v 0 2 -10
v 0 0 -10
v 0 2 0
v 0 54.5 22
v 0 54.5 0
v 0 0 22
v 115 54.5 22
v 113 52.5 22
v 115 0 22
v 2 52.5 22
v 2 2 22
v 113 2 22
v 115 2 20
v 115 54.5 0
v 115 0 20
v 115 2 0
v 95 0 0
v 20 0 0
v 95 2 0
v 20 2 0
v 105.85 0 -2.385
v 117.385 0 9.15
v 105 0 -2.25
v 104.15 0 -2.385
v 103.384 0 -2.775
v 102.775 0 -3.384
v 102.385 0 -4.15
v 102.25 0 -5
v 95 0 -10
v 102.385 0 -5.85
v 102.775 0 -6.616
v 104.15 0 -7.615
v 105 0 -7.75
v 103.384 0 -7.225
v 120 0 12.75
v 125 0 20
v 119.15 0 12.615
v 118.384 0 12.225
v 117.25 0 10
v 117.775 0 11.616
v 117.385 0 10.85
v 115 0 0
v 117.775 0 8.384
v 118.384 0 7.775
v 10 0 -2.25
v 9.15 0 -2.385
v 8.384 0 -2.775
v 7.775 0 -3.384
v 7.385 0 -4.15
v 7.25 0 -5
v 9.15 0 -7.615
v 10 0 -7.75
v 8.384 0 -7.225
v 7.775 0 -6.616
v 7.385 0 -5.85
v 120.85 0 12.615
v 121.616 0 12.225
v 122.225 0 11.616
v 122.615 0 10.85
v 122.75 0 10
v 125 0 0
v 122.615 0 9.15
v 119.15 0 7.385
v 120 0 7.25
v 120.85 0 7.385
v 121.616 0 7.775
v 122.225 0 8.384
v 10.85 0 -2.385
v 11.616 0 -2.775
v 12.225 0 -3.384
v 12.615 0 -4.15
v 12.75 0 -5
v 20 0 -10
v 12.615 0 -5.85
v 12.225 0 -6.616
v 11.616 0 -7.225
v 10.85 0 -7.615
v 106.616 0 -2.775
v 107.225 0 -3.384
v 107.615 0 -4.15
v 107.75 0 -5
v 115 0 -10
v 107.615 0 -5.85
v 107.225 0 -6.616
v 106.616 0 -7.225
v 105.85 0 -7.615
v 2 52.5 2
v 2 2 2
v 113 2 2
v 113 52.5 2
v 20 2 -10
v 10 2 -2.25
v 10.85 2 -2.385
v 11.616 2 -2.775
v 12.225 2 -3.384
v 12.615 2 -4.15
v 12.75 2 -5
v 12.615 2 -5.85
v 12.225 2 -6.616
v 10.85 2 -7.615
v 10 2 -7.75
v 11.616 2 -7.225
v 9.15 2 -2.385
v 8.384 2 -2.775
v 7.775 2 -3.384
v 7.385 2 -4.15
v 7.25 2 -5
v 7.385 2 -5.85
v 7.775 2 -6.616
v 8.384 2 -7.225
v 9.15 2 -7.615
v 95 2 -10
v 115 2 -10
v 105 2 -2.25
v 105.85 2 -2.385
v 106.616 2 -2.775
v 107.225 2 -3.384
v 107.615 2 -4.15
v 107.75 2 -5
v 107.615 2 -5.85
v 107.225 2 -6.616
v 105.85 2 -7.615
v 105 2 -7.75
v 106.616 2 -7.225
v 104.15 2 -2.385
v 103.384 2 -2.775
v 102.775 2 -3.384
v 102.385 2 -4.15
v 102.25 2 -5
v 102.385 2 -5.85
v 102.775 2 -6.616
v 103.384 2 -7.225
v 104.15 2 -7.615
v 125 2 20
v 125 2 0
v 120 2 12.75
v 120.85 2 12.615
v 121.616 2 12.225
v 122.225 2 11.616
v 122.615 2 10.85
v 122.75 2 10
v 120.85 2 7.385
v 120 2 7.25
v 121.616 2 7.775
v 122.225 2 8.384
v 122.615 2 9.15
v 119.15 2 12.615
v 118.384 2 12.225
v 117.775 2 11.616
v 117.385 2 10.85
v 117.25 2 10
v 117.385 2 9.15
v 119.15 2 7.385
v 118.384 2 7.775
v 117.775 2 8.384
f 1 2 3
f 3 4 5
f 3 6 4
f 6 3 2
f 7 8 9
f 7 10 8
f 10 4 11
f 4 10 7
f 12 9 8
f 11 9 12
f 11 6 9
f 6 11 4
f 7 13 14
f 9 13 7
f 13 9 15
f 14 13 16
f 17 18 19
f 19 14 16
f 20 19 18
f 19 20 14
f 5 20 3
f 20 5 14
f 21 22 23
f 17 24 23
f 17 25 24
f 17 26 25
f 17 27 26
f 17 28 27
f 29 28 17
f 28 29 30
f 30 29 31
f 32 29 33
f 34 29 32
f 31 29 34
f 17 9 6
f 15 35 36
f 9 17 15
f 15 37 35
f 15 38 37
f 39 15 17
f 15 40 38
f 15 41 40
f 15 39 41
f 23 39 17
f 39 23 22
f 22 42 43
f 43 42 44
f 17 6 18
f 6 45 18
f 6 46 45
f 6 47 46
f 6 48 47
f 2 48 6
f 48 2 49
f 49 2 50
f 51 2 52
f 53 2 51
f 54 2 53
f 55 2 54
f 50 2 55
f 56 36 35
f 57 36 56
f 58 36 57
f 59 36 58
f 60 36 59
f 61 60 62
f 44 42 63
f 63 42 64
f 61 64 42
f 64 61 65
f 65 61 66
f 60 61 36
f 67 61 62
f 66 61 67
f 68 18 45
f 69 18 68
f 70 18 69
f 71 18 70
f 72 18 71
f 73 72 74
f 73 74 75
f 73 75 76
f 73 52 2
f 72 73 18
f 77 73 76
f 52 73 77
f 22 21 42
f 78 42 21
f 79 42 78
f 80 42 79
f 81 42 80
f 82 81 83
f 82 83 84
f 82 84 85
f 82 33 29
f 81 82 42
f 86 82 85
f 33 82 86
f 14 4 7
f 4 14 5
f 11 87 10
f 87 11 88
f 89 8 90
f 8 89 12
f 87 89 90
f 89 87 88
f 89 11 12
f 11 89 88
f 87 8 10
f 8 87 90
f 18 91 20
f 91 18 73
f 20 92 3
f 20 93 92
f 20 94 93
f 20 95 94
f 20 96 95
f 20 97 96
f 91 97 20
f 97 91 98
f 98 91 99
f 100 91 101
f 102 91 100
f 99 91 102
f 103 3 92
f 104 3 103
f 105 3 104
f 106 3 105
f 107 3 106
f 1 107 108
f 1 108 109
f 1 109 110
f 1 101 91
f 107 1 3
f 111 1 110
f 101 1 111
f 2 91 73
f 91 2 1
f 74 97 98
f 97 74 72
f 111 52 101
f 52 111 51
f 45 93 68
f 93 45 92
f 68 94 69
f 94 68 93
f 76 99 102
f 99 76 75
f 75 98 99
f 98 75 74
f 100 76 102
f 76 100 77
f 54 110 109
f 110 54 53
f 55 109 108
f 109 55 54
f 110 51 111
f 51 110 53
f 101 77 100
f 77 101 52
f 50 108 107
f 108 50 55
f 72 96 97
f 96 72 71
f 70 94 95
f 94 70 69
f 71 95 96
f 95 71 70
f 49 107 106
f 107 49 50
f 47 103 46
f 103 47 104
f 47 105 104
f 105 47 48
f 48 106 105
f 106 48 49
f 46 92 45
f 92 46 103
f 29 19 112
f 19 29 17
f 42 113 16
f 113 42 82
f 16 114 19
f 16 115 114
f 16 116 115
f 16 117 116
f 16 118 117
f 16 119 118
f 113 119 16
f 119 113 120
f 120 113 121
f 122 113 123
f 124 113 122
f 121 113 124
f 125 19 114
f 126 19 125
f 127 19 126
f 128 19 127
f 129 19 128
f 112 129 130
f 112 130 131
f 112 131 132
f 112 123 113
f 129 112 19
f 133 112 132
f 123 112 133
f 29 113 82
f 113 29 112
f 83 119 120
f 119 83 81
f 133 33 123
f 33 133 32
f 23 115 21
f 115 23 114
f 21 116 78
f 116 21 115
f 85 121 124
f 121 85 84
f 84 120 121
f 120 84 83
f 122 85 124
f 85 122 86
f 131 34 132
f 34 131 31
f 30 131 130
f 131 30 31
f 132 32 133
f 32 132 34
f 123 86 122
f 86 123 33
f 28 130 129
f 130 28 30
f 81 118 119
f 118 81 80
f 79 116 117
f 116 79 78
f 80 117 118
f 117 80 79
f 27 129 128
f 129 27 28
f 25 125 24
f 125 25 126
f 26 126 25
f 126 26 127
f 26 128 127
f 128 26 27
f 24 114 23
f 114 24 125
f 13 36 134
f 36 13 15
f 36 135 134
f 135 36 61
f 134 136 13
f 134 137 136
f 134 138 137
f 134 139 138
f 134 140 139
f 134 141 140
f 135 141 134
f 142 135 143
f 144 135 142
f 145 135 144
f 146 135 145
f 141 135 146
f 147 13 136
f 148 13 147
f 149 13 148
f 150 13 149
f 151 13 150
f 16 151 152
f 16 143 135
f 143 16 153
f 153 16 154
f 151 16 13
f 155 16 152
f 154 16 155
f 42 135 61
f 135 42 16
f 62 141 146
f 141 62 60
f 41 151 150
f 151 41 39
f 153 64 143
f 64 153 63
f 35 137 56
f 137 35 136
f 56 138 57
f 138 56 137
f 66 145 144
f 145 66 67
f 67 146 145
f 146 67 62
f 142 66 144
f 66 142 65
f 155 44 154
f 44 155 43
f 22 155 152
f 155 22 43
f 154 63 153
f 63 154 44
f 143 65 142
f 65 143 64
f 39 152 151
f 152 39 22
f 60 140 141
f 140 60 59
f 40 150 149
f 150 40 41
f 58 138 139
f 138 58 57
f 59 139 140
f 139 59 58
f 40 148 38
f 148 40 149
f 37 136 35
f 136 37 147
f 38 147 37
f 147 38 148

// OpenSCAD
BaseWidth = 111;
BaseDepth = 50.5;
BaseHeightBottom = 20;

WallThickness = 2;

AnchorWidth = 20;
AnchorHeight = 10;
AhcnorHoleDiameter = 5.5;


// Bottom main body
difference() {
    cube(size=[BaseWidth+2*WallThickness, BaseDepth+2*WallThickness, BaseHeightBottom+WallThickness], center=false);
    translate([WallThickness, WallThickness, WallThickness])
    cube(size=[BaseWidth, BaseDepth, BaseHeightBottom], center=false);
}

// Bottom anchor 1
translate([0, 0, -AnchorHeight])
    difference() {
        cube(size=[AnchorWidth, WallThickness, AnchorHeight], center=false);
        translate([AnchorWidth/2, 0, AnchorHeight/2])
        rotate([-90, 0, 0])
        cylinder(h=WallThickness, d=AhcnorHoleDiameter, center=false, $fn=20);
    }

// Bottom anchor 2
translate([BaseWidth+2*WallThickness-AnchorWidth, 0, -AnchorHeight])
    difference() {
        cube(size=[AnchorWidth, WallThickness, AnchorHeight], center=false);
        translate([AnchorWidth/2, 0, AnchorHeight/2])
        rotate([-90, 0, 0])
        cylinder(h=WallThickness, d=AhcnorHoleDiameter, center=false, $fn=20);
    }

// Side anchor
translate([BaseWidth+WallThickness*2, 0, 0])
    difference() {
        cube(size=[AnchorHeight, WallThickness, AnchorWidth], center=false);
        translate([AnchorHeight/2, 0, AnchorWidth/2])
        rotate([-90, 0, 0])
        cylinder(h=WallThickness, d=AhcnorHoleDiameter, center=false, $fn=20);
    }
 
